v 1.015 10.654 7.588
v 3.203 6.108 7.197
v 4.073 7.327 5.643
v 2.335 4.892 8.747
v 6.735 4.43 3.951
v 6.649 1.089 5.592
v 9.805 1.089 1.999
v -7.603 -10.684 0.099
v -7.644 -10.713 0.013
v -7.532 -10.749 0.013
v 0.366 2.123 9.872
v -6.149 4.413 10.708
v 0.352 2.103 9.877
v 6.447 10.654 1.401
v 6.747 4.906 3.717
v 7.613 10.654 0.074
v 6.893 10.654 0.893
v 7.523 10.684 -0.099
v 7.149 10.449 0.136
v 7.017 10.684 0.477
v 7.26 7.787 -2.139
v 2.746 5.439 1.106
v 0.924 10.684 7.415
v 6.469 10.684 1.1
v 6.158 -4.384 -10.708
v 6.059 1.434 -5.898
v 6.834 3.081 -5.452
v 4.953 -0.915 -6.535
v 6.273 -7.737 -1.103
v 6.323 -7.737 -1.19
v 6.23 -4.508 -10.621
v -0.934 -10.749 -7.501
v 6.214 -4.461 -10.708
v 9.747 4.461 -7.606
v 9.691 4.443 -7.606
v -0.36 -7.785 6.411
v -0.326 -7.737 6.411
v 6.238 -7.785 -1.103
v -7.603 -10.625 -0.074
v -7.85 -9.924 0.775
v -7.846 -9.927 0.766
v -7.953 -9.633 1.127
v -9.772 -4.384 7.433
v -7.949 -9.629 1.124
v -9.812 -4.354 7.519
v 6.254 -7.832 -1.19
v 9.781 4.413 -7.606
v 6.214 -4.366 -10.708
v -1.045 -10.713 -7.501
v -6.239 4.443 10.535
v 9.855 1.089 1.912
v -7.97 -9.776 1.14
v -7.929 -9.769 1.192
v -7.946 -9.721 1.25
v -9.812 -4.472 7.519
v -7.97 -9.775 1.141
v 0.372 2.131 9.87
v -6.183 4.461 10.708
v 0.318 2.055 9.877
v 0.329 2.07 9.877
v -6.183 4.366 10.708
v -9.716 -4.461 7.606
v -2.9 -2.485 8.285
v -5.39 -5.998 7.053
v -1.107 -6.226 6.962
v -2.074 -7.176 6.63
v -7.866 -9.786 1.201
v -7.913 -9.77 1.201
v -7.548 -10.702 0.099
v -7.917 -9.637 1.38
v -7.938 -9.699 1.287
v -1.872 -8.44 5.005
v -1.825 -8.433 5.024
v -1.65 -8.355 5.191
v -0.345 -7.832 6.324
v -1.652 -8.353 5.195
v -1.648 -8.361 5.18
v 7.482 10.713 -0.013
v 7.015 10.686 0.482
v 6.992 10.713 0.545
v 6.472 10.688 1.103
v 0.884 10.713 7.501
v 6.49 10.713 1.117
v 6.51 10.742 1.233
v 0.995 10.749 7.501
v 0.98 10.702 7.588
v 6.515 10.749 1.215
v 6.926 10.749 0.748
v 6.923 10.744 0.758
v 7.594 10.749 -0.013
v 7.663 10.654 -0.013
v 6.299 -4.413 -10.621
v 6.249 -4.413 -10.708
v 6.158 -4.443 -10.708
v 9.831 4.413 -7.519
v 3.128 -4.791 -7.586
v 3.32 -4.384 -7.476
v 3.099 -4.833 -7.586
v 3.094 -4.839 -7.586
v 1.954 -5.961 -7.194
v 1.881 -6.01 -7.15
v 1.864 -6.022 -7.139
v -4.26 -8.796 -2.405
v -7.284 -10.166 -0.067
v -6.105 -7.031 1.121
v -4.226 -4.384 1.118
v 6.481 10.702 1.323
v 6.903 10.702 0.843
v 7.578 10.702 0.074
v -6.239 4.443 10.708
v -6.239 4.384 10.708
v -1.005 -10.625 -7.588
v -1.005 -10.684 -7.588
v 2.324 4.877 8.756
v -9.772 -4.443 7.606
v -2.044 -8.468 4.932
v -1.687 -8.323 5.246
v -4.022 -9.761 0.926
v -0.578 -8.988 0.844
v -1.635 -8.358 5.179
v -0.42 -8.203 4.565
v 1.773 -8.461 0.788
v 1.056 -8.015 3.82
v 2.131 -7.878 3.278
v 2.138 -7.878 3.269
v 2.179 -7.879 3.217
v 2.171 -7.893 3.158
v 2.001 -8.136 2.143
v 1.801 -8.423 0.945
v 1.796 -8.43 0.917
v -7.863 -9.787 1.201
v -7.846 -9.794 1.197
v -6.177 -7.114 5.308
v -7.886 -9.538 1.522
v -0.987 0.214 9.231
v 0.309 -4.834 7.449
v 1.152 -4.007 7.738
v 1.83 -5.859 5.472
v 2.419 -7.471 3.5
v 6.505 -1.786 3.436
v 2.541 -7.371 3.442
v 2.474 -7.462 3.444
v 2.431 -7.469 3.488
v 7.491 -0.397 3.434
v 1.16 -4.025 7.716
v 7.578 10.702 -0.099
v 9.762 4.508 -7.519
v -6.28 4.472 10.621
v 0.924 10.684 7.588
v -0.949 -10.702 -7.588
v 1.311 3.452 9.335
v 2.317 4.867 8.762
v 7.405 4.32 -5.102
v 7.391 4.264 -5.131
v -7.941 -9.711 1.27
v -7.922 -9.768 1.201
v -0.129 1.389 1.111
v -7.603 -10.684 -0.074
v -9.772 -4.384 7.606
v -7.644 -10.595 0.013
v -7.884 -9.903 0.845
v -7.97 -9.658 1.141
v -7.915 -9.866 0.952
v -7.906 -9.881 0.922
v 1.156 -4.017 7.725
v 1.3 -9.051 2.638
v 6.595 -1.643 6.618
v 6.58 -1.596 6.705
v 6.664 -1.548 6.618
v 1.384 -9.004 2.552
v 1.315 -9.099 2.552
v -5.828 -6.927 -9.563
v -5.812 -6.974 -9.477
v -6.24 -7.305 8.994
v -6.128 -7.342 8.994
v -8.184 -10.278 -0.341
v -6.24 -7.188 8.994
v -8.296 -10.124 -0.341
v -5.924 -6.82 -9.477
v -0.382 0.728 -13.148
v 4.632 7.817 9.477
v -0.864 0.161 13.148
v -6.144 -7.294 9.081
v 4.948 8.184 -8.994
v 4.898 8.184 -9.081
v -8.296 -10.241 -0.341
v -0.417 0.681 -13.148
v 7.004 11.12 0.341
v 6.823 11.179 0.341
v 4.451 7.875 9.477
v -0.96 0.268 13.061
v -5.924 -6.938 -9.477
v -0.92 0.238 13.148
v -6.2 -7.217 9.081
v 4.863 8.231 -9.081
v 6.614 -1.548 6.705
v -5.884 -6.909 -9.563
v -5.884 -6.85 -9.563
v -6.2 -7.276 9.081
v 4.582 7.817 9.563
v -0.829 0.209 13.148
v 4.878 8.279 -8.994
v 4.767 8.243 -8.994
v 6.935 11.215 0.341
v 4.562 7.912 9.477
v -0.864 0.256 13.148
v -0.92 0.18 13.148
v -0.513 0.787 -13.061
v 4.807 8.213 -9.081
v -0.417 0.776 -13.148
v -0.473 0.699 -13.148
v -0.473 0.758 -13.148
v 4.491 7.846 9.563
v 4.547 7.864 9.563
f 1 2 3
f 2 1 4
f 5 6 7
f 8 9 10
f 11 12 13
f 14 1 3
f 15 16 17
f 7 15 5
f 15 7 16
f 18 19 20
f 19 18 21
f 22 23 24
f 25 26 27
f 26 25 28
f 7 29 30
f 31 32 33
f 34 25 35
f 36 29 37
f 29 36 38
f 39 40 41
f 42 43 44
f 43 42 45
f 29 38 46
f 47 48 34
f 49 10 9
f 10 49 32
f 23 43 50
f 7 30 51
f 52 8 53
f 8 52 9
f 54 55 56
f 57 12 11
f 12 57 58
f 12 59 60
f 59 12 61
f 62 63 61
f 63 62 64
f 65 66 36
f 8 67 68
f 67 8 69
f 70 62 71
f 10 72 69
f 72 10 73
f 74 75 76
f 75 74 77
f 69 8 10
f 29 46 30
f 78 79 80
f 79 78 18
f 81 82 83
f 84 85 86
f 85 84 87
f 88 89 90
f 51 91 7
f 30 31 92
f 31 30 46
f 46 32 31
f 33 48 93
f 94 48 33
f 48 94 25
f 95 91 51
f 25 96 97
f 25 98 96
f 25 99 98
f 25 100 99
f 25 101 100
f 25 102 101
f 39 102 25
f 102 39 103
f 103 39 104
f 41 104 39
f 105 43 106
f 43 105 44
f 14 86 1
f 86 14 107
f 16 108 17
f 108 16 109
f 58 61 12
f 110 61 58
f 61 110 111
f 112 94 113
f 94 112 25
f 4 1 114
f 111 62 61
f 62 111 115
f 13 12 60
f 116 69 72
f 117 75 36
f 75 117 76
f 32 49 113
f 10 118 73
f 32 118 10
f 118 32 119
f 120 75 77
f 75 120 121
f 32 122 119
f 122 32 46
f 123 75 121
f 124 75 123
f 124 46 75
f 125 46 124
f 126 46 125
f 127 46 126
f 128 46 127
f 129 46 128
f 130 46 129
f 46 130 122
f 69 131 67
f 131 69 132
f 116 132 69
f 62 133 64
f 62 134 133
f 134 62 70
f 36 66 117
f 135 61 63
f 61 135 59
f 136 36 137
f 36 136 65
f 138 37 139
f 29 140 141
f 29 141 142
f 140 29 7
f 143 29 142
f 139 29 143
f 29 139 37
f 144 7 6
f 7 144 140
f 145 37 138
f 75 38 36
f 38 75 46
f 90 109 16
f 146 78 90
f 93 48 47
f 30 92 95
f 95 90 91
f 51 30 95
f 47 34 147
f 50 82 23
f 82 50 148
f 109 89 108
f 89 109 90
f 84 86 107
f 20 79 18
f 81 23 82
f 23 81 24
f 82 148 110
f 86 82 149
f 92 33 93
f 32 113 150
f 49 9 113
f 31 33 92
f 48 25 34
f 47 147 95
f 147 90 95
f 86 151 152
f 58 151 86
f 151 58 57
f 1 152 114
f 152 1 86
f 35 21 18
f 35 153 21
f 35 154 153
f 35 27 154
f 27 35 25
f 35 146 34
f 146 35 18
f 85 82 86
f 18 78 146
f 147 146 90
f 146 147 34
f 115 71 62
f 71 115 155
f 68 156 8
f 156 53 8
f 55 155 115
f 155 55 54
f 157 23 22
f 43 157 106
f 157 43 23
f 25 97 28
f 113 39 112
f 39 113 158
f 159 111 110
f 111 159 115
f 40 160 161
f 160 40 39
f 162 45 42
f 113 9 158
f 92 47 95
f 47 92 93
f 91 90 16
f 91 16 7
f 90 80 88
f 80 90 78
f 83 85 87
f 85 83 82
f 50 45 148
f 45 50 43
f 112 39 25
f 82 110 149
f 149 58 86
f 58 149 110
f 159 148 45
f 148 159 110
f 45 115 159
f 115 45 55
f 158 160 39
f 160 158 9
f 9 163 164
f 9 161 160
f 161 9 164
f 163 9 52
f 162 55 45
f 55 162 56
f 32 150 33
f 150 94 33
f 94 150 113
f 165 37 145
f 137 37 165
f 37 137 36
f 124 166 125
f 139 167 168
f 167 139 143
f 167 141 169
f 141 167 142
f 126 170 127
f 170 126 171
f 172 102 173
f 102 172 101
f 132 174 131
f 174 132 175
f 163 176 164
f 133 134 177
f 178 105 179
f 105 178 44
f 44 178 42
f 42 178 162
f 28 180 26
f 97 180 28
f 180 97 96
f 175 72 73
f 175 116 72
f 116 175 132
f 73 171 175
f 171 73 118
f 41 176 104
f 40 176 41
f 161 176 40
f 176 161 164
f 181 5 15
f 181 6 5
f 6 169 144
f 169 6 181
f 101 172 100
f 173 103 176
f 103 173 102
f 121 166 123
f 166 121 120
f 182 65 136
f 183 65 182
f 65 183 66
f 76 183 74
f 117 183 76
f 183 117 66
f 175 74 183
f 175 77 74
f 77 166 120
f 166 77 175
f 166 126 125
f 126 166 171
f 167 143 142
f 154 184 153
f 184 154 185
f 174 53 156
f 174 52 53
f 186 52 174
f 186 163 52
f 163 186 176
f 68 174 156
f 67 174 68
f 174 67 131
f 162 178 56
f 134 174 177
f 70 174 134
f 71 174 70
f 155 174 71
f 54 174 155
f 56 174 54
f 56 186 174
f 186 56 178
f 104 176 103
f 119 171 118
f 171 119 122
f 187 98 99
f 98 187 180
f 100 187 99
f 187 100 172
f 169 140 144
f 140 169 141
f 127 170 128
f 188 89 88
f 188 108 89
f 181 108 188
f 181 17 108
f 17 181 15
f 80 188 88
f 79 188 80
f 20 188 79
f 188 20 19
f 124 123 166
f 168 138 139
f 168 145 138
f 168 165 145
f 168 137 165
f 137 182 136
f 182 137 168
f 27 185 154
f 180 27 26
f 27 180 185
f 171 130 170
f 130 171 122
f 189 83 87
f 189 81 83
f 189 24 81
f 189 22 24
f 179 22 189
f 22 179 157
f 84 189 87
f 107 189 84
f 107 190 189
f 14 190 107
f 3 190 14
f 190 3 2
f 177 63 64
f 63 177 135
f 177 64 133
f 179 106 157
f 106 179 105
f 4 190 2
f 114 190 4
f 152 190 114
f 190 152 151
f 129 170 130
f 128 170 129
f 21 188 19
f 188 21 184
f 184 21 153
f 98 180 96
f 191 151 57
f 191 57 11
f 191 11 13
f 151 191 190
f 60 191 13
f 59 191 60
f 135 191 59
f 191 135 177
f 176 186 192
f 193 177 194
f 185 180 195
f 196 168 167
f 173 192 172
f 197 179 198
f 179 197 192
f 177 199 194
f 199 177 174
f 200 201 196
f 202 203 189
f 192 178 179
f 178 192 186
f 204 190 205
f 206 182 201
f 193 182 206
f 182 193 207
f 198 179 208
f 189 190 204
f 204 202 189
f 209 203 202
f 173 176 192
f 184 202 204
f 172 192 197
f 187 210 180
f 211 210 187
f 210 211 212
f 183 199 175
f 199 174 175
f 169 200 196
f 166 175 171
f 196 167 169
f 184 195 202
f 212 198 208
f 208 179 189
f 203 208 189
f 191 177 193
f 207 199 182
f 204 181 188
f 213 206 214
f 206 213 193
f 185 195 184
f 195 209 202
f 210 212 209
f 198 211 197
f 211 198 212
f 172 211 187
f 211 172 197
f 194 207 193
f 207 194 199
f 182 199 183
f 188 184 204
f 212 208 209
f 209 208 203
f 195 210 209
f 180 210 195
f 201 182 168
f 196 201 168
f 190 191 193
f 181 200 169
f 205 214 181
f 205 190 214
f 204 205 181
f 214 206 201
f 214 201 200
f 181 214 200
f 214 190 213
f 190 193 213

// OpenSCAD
// Auto-generated OpenSCAD file

    inner_points = 10*[[-0.5843169179657698, -0.6879231760558433, -0.9476863813058384], [-0.8215331245846192, -1.0182565838404067, -0.03411738499587125], [0.6903670649661048, 1.1119849418432066, 0.03411738499587125], [0.4531508583472553, 0.7816515340586432, 0.9476863813058384], [-0.04323343492736341, 0.07283869886099822, -1.3061135483231257], [-0.6159240181612884, -0.7246566943174167, 0.8994371127319727], [0.4847579585427739, 0.8183850523202166, -0.8994371127319727], [-0.08793262469115103, 0.02088965914180165, 1.3061135483231257], [0.36563737174037947, -0.5700346554462439, -0.6583956206905608], [0.12842116512152985, -0.9003680632308071, 0.25517337561940623], [0.8936287652105167, 0.17551169801297445, -0.251719185099408], [0.6564125585916671, -0.1548217097715889, 0.6618498112105591]];

    outer_points = 10*[[-0.9731118629091229, -0.4413118352277251, 0.7519334728152625], [-0.619892288935397, 0.4413118352277251, 1.0621130803228622], [0.619892288935397, -0.4413118352277251, -1.0621130803228622], [0.9731118629091229, 0.4413118352277251, -0.7519334728152625], [-0.7562957052968324, -1.0654210178425345, 0.0012814349347830545], [0.09645178068618293, 1.0654210178425345, 0.7501212501511937], [-0.09645178068618293, -1.0654210178425345, -0.7501212501511937], [0.7562957052968324, 1.0654210178425345, -0.0012814349347830545], [-0.03757443368860547, -0.7737087789198632, 0.632426191231289], [0.3156451402851202, 0.10891489153558698, 0.9426057987388886], [0.622269490922044, -0.7737087789198632, -0.11897649385468778], [0.9754890648957697, 0.10891489153558698, 0.19120311365291187]];

    // Convex hull for inner set (I)
    module inner_hull() {
        hull() {
            for (p = inner_points) {
                translate(p) sphere(r=0.1);
            }
        }
    }

    // Convex hull for outer set (O) minus inner hull (O \ I)
    module outer_minus_inner() {
        difference() {
            hull() {
                for (p = outer_points) {
                    translate(p) sphere(r=0.1);
                }
            }
            inner_hull(); // Subtract inner hull
        }
    }

    // Convex hull for outer set (O) minus all translated inner hulls
    module outer_minus_AllTranslationInner() {
        difference() {
            hull() {
                for (p = outer_points) {
                    translate(p) sphere(r=0.1);
                }
            }
            hull() {
                translate([0,0,50]) inner_hull();
                translate([0,0,-50]) inner_hull();
            }; // Subtract translated inner hulls
        }
    }

    // Difference between outer_minus_inner and outer_minus_AllTranslationInner
    module outer_minus_inner_diff() {
        difference() {
            // Outer minus inner
            difference() {
                hull() {
                    for (p = outer_points) {
                        translate(p) sphere(r=0.1);
                    }
                }
                inner_hull();
            }

            // Subtract Outer minus AllTranslationInner
            difference() {
                hull() {
                    for (p = outer_points) {
                        translate(p) sphere(r=0.1);
                    }
                }
                hull() {
                    translate([0,0,50]) inner_hull();
                    translate([0,0,-50]) inner_hull();
                };
            }
        }
    }

    // Rendering all with colors applied
    color([1, 0, 0, 0.5]) inner_hull(); // Transparent red
    color([0, 1, 0, 1]) outer_minus_AllTranslationInner(); // Opaque green
    color([1, 1, 0, 1]) outer_minus_inner_diff(); // Opaque yellow
    
